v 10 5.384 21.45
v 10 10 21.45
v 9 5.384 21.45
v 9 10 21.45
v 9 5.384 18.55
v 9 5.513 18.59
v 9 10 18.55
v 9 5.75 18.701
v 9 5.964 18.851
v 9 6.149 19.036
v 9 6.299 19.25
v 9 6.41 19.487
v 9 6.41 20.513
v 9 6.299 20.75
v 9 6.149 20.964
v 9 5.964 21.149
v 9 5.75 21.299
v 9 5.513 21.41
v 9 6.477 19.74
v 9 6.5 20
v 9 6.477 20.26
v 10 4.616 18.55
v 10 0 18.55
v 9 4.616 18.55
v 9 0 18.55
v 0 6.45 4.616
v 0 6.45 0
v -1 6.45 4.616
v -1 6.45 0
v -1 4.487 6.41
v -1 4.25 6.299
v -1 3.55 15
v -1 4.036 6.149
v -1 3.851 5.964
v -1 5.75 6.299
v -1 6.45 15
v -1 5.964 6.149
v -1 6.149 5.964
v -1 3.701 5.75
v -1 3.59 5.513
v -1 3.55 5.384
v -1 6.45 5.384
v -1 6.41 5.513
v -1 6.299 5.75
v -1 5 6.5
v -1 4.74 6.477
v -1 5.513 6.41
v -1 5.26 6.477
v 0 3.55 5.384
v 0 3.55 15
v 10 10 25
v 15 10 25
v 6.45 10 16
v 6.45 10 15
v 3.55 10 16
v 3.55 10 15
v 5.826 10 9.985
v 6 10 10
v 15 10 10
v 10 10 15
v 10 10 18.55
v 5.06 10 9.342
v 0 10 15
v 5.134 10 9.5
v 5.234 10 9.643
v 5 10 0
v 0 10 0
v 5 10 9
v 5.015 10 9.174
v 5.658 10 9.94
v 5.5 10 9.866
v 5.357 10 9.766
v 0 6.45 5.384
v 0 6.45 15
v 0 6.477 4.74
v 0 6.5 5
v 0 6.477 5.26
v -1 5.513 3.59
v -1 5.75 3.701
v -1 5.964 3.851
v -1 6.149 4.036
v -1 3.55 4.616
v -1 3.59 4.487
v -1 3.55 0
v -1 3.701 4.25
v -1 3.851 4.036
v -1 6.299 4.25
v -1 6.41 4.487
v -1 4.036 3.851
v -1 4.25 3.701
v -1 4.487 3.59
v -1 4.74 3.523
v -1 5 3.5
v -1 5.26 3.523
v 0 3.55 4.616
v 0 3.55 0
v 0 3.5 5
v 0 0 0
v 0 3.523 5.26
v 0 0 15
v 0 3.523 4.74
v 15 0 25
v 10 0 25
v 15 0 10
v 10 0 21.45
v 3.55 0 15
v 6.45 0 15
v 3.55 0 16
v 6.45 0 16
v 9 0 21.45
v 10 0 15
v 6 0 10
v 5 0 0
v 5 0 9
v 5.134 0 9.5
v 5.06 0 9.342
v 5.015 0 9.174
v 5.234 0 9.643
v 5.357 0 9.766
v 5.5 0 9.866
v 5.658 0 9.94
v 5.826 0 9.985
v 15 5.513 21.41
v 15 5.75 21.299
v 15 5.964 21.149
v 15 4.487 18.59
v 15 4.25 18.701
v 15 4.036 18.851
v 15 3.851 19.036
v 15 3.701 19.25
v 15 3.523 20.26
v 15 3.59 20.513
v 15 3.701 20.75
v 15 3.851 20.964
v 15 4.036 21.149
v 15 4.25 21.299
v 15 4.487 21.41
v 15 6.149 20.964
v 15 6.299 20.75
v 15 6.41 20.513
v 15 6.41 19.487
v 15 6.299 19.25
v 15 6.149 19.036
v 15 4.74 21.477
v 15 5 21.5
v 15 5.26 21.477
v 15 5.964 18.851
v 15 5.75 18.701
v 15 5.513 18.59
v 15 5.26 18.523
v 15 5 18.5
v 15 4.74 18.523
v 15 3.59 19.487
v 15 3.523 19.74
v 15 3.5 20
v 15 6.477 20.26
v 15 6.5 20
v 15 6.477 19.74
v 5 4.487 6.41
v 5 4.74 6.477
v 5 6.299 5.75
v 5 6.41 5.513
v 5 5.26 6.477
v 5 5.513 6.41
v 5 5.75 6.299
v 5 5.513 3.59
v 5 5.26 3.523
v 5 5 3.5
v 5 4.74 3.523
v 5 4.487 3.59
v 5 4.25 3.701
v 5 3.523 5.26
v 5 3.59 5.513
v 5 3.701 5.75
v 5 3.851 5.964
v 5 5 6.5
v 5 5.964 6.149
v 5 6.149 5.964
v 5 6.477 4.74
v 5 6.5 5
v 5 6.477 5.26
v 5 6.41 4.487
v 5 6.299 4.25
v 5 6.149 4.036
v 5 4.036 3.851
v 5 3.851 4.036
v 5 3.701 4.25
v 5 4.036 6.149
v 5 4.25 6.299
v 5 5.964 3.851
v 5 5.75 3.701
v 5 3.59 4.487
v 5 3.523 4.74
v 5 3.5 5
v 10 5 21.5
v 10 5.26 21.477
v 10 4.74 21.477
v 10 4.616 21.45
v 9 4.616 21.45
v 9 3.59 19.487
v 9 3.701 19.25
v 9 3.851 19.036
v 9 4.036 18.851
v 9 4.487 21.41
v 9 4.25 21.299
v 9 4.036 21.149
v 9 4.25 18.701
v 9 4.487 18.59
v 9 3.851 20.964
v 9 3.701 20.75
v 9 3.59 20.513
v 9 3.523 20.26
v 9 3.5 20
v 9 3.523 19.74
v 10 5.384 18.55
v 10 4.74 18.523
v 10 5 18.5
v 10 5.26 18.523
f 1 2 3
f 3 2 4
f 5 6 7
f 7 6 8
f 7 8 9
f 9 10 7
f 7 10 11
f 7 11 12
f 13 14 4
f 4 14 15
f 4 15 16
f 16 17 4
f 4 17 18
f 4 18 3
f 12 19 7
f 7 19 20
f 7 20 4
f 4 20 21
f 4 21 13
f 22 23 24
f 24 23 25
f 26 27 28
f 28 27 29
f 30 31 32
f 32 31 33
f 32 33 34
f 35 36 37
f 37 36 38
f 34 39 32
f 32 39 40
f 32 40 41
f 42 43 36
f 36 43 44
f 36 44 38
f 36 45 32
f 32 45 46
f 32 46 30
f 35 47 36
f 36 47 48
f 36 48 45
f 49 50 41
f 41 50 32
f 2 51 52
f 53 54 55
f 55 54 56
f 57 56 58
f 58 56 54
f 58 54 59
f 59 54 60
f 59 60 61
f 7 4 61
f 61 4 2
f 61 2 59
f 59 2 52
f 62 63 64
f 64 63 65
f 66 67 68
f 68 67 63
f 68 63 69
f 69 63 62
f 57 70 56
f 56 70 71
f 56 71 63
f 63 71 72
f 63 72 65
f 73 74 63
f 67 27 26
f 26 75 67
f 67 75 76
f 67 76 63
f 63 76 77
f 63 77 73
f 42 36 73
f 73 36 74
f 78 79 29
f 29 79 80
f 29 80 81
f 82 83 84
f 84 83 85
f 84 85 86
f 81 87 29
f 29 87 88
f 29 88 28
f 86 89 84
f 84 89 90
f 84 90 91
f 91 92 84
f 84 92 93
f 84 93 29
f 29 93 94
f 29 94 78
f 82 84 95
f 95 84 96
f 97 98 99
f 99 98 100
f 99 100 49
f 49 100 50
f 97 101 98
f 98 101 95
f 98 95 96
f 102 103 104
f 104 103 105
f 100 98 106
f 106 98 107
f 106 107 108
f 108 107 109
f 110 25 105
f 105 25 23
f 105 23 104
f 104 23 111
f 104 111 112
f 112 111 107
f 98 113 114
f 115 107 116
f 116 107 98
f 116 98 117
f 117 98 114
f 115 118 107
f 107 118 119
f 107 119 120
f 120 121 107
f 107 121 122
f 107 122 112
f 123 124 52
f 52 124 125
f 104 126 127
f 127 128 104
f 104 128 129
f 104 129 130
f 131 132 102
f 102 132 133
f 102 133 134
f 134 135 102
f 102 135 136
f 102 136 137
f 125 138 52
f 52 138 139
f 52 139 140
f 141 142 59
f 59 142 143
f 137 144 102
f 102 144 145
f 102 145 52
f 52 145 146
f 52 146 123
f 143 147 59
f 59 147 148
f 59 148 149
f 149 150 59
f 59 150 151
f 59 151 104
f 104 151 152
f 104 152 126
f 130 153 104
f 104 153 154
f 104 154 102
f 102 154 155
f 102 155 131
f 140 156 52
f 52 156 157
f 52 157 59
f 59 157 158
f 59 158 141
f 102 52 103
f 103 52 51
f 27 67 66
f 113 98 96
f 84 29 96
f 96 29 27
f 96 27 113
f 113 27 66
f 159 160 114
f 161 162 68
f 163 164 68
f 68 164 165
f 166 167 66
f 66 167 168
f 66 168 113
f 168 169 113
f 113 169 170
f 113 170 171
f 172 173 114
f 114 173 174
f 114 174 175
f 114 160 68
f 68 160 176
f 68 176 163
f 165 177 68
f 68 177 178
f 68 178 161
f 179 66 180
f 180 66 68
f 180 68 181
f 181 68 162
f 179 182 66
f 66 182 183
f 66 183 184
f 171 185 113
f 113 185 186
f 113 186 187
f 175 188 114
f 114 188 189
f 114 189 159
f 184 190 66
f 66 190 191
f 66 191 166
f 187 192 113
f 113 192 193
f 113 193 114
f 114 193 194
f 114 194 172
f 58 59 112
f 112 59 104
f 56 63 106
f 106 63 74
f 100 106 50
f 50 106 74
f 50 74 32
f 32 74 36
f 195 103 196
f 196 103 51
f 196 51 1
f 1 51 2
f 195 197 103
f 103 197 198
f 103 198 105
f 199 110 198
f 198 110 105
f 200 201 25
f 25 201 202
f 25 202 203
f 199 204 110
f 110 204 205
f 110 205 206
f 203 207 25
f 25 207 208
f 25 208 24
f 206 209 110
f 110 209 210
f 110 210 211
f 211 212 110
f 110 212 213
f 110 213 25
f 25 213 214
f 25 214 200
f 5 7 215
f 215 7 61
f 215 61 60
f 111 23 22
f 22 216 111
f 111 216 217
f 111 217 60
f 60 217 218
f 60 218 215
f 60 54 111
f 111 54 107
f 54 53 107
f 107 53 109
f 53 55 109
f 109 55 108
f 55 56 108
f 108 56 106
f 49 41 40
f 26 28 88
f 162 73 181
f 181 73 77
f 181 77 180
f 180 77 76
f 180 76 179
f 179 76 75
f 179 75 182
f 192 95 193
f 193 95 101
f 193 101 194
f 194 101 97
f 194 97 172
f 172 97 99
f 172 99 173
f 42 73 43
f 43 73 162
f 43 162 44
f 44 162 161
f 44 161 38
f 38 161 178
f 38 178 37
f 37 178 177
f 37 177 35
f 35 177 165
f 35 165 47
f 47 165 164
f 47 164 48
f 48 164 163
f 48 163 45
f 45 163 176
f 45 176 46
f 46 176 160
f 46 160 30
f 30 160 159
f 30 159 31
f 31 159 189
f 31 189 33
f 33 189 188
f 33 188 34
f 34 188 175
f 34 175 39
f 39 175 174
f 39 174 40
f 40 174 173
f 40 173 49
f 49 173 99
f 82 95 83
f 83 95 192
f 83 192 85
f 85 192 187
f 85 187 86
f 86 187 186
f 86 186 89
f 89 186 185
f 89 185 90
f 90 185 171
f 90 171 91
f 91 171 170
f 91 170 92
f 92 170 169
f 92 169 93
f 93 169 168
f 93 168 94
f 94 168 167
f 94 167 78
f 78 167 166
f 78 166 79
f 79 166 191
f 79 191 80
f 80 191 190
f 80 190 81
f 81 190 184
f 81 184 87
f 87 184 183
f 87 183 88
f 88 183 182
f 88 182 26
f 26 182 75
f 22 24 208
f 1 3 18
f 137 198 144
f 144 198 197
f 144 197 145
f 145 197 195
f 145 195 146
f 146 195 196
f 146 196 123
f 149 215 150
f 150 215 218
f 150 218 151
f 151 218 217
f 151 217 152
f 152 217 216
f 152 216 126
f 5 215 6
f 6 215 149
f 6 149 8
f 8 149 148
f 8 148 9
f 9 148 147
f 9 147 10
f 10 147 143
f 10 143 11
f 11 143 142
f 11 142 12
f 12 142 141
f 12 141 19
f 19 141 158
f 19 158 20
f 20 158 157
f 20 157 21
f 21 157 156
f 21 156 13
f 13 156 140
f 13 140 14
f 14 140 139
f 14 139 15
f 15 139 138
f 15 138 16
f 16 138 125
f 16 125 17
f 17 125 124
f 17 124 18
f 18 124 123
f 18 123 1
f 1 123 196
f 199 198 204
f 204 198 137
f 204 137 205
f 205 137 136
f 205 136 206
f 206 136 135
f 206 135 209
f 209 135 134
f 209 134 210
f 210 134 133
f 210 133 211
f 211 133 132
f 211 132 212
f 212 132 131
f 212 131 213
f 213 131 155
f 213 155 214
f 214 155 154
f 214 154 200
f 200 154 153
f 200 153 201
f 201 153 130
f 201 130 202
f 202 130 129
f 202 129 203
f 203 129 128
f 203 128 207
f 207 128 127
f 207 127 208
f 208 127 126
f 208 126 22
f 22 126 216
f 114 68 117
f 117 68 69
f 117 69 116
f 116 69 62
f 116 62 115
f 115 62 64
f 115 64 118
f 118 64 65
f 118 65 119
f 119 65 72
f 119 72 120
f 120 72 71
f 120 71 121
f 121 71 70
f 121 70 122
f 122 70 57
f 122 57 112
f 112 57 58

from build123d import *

# Parameters (mm, degrees)
MAIN_DEPTH             = 25
SKETCH2_W              = 10
SKETCH2_H              = 10
VERTICALFORM_DEPTH     = 11
SKETCH3_R              = 1.5
MAKERBEAMFIXHOLE_DEPTH = 17
FILLET1_R              = 1


with BuildPart() as part:
    # Sketch1 → Main (new body)
    with BuildSketch(Plane.XY):
        Polygon((0, 10), (0, 6.45), (-1, 6.45), (-1, 3.55), (0, 3.55), (0, 0), (15, 0), (15, 10), align=None)
    extrude(amount=MAIN_DEPTH)

    # Sketch2 → VerticalForm (cut, through all)
    with BuildSketch(Plane(origin=(0, 0, 0), x_dir=(-1, 0, 0), z_dir=(0, -1, 0))):
        Polygon((1, -15), (1, -25), (-10, -25), (-10, -21.45), (-9, -21.45), (-9, -18.55), (-10, -18.55), (-10, -15), (-6.45, -15), (-6.45, -16), (-3.55, -16), (-3.55, -15), align=None)
        with Locations((-10, -5)):
            Rectangle(SKETCH2_W, SKETCH2_H)
    extrude(amount=-VERTICALFORM_DEPTH, mode=Mode.SUBTRACT)

    # Sketch3 → MakerBeamFixHole (cut, through all)
    with BuildSketch(Plane(origin=(15, 0, 0), x_dir=(0, 0, -1), z_dir=(1, 0, 0))):
        with Locations((-5, 5)):
            Circle(SKETCH3_R)
        with Locations((-20, 5)):
            Circle(SKETCH3_R)
    extrude(amount=-MAKERBEAMFIXHOLE_DEPTH, mode=Mode.SUBTRACT)

    # Fillet1
    fillet1_edges = [part.edges().sort_by_distance(p)[0] for p in [
        (5, 5, 10),
    ]]
    fillet(fillet1_edges, radius=FILLET1_R)


solid = part.part
